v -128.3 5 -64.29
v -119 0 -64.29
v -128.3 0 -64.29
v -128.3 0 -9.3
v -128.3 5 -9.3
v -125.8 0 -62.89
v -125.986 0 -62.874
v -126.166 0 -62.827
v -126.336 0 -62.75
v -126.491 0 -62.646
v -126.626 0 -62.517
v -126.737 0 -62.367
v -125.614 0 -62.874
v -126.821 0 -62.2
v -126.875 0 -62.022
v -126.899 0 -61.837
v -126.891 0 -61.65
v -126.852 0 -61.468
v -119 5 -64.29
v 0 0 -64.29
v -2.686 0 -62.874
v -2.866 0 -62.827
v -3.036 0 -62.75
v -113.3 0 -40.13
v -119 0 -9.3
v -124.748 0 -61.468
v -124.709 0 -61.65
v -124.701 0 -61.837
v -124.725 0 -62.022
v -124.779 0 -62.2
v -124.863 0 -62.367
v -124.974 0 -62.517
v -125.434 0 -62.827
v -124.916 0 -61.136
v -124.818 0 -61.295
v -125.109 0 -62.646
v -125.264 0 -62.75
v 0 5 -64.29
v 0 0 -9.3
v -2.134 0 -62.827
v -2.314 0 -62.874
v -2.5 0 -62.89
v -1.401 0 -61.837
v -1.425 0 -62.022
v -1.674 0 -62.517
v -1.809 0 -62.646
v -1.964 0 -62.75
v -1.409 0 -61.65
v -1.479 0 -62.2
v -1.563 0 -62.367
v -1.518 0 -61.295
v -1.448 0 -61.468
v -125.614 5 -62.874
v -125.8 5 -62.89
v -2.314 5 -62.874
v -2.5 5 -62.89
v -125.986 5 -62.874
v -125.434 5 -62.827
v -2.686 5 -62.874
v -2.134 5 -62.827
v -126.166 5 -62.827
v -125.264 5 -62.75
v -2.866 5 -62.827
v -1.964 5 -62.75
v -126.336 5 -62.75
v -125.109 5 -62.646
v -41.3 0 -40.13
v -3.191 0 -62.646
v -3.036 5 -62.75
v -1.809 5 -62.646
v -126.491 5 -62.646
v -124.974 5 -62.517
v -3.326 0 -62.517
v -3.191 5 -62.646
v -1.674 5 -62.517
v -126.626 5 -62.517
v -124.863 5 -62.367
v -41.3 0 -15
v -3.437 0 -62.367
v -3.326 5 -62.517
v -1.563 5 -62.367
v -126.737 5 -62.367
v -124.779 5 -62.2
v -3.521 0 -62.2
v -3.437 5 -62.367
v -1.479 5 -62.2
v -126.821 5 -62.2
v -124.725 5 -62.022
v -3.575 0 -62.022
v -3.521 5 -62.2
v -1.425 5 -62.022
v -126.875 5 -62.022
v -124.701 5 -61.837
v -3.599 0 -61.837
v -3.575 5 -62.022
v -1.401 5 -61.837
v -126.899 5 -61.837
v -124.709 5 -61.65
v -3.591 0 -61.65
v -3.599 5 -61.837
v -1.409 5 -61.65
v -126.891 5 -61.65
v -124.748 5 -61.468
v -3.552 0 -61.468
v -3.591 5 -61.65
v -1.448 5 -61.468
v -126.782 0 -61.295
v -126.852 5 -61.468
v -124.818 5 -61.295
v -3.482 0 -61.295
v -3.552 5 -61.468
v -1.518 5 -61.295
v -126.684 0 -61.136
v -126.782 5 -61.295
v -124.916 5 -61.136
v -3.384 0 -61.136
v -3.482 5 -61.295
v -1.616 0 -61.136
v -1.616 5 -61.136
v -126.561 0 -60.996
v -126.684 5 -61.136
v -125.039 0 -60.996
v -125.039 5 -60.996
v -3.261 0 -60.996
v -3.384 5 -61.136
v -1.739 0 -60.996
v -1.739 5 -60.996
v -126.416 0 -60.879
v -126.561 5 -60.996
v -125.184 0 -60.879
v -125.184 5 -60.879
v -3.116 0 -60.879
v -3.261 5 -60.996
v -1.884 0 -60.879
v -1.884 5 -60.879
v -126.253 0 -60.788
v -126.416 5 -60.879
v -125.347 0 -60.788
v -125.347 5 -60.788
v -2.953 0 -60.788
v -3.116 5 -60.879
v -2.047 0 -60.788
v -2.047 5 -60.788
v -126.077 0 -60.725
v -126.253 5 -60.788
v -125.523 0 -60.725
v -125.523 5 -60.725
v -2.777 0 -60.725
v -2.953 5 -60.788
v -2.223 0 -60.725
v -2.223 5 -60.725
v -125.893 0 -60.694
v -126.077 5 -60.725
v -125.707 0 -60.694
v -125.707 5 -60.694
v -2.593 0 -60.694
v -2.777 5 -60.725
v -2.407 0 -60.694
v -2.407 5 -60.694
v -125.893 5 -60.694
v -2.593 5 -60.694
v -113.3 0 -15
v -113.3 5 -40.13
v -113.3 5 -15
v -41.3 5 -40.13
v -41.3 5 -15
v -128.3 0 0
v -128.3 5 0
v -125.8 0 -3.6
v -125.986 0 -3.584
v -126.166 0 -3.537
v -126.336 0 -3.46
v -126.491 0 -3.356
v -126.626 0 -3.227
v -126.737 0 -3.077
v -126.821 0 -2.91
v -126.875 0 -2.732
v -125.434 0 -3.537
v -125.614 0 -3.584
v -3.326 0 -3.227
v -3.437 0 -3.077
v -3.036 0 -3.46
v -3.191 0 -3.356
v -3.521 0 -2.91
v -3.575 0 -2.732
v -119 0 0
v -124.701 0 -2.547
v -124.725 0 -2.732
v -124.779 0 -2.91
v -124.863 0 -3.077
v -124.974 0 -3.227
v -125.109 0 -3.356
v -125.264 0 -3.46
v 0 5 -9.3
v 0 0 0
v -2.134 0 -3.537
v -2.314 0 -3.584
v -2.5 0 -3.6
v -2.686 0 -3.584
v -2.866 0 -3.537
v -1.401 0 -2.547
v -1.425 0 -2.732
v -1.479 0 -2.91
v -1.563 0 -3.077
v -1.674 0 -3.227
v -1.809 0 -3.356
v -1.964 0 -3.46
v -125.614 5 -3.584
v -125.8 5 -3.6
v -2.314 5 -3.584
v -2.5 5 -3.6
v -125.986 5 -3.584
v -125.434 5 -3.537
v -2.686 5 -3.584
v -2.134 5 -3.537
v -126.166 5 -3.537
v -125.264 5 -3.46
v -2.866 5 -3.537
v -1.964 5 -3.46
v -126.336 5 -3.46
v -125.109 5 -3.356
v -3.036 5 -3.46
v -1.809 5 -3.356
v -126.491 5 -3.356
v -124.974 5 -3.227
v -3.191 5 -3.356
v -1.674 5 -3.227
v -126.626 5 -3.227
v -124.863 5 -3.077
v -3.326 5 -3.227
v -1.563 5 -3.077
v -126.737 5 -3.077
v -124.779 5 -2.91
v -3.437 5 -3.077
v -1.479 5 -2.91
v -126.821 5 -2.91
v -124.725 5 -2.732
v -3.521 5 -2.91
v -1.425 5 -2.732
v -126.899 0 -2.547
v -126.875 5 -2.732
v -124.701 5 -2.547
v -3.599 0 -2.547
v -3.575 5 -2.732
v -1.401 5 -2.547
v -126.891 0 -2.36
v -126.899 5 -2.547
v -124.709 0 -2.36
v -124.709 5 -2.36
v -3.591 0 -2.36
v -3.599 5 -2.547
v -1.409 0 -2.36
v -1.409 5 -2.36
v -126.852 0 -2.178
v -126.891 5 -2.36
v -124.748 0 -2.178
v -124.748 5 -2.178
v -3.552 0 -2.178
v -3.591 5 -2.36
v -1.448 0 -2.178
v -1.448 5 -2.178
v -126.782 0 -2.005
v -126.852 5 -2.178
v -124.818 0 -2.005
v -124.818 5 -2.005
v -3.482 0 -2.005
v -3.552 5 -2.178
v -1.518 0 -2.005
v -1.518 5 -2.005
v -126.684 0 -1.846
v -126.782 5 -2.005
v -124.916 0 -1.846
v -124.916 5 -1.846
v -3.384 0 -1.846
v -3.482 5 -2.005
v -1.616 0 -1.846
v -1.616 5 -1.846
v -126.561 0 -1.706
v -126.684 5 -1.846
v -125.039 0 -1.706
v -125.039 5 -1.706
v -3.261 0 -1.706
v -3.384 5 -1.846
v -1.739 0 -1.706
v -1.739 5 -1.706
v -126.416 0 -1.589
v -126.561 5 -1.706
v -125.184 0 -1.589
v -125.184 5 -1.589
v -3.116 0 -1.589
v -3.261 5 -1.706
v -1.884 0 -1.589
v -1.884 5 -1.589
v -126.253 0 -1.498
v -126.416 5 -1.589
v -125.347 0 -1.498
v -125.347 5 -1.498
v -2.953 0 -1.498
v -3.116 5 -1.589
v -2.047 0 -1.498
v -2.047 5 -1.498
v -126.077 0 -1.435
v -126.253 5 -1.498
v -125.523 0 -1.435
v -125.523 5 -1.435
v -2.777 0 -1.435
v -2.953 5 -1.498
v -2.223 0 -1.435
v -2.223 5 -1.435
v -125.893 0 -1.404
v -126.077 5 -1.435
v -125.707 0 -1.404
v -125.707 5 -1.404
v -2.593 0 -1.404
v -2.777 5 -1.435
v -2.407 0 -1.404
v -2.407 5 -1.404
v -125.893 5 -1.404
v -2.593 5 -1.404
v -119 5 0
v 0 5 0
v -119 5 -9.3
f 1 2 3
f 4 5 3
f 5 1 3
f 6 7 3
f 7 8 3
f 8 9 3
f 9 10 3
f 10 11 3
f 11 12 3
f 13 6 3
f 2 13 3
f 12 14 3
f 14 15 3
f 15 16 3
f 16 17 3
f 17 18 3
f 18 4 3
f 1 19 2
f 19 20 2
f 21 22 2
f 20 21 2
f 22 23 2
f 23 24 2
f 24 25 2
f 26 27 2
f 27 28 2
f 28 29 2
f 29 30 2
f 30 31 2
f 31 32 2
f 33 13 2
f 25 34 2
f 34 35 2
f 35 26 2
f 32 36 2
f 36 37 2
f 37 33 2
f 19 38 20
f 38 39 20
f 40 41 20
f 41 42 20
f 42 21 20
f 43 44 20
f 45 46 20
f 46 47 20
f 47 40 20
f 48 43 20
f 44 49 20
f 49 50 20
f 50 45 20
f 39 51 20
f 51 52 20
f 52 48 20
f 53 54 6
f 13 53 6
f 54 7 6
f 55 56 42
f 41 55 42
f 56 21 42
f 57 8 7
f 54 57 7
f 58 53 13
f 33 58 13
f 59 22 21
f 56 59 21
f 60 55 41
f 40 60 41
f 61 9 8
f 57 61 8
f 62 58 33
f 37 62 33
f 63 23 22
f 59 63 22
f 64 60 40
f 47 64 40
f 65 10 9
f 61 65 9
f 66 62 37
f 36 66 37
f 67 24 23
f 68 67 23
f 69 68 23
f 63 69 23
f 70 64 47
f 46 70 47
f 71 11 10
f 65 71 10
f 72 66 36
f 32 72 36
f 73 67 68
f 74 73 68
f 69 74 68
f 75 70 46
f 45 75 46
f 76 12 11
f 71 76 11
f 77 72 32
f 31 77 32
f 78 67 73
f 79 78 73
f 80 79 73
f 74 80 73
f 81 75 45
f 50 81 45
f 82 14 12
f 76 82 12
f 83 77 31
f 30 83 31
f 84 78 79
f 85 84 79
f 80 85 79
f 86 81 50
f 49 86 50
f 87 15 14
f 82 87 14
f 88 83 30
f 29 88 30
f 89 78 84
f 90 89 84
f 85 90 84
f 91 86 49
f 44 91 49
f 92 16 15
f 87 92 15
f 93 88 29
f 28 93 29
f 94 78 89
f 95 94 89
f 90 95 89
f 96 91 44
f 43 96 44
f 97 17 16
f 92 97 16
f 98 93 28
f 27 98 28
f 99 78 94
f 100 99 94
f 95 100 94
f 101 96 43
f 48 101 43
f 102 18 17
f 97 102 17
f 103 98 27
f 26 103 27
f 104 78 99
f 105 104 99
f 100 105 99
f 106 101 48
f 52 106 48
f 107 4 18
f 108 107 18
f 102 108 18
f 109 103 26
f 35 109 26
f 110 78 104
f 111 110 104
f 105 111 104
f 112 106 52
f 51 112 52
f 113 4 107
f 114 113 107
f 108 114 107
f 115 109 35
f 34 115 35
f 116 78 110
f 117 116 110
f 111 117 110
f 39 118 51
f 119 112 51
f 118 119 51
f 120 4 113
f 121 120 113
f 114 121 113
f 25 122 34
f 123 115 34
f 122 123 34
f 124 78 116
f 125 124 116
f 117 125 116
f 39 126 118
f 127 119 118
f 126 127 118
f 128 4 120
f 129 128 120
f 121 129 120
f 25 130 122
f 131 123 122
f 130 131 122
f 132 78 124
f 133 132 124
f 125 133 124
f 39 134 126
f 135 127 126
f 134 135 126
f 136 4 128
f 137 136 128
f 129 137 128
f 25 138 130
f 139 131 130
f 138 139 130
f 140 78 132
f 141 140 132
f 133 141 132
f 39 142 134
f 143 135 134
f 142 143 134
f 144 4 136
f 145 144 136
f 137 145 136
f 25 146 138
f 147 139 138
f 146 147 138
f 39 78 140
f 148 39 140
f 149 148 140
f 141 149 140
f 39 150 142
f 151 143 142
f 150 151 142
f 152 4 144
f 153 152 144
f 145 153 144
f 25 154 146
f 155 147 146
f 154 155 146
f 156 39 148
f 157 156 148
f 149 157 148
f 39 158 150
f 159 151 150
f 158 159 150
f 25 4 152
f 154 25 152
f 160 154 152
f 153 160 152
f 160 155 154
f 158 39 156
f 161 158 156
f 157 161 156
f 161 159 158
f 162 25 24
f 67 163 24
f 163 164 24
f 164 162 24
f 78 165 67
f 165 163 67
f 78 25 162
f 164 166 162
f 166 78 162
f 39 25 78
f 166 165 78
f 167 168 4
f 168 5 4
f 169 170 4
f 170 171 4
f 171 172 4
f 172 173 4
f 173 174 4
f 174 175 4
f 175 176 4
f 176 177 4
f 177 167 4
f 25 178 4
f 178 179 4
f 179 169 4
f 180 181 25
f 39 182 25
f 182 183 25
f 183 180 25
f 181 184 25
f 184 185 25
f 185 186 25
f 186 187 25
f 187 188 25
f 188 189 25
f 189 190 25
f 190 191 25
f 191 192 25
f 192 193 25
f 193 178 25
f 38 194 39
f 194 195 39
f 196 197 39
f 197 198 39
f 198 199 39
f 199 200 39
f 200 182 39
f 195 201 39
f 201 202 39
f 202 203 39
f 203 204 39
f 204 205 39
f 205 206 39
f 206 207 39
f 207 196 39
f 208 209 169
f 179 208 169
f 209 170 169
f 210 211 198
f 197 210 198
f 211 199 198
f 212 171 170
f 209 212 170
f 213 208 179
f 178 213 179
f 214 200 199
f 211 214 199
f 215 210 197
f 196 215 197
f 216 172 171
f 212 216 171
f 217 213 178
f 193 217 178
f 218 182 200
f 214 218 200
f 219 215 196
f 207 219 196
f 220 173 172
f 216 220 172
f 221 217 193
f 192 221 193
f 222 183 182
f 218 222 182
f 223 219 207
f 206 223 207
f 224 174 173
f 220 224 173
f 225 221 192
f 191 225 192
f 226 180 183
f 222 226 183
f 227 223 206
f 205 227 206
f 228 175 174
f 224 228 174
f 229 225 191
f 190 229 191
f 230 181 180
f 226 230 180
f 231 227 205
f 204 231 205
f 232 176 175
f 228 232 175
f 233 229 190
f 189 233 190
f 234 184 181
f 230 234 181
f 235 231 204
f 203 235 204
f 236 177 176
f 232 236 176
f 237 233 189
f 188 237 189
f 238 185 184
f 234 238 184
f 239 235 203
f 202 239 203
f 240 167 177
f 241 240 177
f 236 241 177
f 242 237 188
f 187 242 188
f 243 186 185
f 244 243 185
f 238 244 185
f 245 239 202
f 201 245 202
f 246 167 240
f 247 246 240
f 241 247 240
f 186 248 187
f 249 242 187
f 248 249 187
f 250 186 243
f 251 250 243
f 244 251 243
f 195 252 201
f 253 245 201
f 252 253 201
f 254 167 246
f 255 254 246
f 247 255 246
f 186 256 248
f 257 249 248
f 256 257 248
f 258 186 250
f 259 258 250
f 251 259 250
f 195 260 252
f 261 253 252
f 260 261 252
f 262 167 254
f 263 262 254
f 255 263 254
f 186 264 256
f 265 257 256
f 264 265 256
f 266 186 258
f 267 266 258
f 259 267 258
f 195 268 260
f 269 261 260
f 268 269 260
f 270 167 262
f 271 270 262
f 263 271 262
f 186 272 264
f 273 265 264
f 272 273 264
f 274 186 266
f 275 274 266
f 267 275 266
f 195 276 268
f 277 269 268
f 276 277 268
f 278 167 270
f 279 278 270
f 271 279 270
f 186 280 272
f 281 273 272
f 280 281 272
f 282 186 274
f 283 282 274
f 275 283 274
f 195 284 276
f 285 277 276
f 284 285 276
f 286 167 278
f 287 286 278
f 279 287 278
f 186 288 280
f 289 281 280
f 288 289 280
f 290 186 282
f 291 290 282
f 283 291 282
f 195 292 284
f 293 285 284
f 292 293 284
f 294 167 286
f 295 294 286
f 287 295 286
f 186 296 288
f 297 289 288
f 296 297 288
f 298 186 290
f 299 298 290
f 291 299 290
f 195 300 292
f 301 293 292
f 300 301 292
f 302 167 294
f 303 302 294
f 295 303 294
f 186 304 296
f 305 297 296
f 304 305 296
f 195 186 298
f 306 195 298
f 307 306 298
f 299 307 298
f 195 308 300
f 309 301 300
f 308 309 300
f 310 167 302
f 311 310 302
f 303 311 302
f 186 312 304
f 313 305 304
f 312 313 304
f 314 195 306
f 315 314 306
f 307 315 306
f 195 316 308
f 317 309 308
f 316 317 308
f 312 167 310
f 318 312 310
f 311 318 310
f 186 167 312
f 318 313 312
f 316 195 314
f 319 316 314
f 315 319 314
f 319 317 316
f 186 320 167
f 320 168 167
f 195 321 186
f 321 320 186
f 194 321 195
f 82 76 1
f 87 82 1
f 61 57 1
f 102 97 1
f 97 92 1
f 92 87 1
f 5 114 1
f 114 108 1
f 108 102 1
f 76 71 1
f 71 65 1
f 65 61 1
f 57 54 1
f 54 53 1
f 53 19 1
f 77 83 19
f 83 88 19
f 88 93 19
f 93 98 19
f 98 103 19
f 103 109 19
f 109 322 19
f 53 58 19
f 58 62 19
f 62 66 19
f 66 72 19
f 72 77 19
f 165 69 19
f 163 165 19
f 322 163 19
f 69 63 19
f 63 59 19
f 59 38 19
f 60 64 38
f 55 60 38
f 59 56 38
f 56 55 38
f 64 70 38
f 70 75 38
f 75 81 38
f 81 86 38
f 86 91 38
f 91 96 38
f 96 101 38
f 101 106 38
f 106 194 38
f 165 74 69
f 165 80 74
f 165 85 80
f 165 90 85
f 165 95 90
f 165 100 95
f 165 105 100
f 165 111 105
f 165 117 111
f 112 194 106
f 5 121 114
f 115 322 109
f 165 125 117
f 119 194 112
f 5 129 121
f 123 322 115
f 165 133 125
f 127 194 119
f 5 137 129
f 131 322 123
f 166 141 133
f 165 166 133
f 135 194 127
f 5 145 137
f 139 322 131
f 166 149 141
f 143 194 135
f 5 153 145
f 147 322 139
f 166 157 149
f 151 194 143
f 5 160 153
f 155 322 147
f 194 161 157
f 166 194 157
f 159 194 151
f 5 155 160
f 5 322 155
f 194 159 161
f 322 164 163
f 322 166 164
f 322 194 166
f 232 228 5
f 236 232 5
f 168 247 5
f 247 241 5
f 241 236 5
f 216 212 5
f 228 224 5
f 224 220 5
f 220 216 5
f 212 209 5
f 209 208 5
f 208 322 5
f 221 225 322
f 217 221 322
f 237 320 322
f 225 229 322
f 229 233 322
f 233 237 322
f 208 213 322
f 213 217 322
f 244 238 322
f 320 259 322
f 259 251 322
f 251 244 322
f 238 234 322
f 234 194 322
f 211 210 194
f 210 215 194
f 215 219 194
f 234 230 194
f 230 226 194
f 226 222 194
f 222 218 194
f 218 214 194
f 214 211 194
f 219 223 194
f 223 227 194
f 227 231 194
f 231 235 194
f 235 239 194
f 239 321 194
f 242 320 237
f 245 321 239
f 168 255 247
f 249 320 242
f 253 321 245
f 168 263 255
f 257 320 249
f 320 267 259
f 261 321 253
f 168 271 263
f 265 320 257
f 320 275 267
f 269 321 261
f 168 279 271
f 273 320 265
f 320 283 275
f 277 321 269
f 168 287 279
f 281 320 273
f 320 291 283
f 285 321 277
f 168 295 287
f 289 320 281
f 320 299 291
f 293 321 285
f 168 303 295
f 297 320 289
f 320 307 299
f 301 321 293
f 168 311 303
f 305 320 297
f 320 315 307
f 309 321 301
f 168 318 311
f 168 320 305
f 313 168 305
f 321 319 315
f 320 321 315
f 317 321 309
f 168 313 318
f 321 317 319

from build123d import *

# Parameters (mm, degrees)
SKETCH1_W           = 128.3
SKETCH1_H           = 64.29
BOSS_EXTRUDE1_DEPTH = 5
SKETCH2_R           = 1.1
CUT_EXTRUDE1_DEPTH  = 6
SKETCH3_W           = 72
SKETCH3_H           = 25.13
CUT_EXTRUDE2_DEPTH  = 6


with BuildPart() as part:
    # Sketch1 → Boss-Extrude1 (new body)
    with BuildSketch(Plane(origin=(0, 0, 0), x_dir=(1, 0, 0), z_dir=(0, 1, 0))):
        with Locations((-64.15, 32.145)):
            Rectangle(SKETCH1_W, SKETCH1_H)
    extrude(amount=BOSS_EXTRUDE1_DEPTH)

    # Sketch2 → Cut-Extrude1 (cut, through all)
    with BuildSketch(Plane(origin=(0, 0, 0), x_dir=(-1, 0, 0), z_dir=(0, -1, 0))):
        with Locations((125.8, 2.5)):
            Circle(SKETCH2_R)
        with Locations((125.8, 61.79)):
            Circle(SKETCH2_R)
        with Locations((2.5, 2.5)):
            Circle(SKETCH2_R)
        with Locations((2.5, 61.79)):
            Circle(SKETCH2_R)
    extrude(amount=-CUT_EXTRUDE1_DEPTH, mode=Mode.SUBTRACT)

    # Sketch3 → Cut-Extrude2 (cut, through all)
    with BuildSketch(Plane.XZ):
        with Locations((-77.3, -27.565)):
            Rectangle(SKETCH3_W, SKETCH3_H)
    extrude(amount=-CUT_EXTRUDE2_DEPTH, mode=Mode.SUBTRACT)


solid = part.part
